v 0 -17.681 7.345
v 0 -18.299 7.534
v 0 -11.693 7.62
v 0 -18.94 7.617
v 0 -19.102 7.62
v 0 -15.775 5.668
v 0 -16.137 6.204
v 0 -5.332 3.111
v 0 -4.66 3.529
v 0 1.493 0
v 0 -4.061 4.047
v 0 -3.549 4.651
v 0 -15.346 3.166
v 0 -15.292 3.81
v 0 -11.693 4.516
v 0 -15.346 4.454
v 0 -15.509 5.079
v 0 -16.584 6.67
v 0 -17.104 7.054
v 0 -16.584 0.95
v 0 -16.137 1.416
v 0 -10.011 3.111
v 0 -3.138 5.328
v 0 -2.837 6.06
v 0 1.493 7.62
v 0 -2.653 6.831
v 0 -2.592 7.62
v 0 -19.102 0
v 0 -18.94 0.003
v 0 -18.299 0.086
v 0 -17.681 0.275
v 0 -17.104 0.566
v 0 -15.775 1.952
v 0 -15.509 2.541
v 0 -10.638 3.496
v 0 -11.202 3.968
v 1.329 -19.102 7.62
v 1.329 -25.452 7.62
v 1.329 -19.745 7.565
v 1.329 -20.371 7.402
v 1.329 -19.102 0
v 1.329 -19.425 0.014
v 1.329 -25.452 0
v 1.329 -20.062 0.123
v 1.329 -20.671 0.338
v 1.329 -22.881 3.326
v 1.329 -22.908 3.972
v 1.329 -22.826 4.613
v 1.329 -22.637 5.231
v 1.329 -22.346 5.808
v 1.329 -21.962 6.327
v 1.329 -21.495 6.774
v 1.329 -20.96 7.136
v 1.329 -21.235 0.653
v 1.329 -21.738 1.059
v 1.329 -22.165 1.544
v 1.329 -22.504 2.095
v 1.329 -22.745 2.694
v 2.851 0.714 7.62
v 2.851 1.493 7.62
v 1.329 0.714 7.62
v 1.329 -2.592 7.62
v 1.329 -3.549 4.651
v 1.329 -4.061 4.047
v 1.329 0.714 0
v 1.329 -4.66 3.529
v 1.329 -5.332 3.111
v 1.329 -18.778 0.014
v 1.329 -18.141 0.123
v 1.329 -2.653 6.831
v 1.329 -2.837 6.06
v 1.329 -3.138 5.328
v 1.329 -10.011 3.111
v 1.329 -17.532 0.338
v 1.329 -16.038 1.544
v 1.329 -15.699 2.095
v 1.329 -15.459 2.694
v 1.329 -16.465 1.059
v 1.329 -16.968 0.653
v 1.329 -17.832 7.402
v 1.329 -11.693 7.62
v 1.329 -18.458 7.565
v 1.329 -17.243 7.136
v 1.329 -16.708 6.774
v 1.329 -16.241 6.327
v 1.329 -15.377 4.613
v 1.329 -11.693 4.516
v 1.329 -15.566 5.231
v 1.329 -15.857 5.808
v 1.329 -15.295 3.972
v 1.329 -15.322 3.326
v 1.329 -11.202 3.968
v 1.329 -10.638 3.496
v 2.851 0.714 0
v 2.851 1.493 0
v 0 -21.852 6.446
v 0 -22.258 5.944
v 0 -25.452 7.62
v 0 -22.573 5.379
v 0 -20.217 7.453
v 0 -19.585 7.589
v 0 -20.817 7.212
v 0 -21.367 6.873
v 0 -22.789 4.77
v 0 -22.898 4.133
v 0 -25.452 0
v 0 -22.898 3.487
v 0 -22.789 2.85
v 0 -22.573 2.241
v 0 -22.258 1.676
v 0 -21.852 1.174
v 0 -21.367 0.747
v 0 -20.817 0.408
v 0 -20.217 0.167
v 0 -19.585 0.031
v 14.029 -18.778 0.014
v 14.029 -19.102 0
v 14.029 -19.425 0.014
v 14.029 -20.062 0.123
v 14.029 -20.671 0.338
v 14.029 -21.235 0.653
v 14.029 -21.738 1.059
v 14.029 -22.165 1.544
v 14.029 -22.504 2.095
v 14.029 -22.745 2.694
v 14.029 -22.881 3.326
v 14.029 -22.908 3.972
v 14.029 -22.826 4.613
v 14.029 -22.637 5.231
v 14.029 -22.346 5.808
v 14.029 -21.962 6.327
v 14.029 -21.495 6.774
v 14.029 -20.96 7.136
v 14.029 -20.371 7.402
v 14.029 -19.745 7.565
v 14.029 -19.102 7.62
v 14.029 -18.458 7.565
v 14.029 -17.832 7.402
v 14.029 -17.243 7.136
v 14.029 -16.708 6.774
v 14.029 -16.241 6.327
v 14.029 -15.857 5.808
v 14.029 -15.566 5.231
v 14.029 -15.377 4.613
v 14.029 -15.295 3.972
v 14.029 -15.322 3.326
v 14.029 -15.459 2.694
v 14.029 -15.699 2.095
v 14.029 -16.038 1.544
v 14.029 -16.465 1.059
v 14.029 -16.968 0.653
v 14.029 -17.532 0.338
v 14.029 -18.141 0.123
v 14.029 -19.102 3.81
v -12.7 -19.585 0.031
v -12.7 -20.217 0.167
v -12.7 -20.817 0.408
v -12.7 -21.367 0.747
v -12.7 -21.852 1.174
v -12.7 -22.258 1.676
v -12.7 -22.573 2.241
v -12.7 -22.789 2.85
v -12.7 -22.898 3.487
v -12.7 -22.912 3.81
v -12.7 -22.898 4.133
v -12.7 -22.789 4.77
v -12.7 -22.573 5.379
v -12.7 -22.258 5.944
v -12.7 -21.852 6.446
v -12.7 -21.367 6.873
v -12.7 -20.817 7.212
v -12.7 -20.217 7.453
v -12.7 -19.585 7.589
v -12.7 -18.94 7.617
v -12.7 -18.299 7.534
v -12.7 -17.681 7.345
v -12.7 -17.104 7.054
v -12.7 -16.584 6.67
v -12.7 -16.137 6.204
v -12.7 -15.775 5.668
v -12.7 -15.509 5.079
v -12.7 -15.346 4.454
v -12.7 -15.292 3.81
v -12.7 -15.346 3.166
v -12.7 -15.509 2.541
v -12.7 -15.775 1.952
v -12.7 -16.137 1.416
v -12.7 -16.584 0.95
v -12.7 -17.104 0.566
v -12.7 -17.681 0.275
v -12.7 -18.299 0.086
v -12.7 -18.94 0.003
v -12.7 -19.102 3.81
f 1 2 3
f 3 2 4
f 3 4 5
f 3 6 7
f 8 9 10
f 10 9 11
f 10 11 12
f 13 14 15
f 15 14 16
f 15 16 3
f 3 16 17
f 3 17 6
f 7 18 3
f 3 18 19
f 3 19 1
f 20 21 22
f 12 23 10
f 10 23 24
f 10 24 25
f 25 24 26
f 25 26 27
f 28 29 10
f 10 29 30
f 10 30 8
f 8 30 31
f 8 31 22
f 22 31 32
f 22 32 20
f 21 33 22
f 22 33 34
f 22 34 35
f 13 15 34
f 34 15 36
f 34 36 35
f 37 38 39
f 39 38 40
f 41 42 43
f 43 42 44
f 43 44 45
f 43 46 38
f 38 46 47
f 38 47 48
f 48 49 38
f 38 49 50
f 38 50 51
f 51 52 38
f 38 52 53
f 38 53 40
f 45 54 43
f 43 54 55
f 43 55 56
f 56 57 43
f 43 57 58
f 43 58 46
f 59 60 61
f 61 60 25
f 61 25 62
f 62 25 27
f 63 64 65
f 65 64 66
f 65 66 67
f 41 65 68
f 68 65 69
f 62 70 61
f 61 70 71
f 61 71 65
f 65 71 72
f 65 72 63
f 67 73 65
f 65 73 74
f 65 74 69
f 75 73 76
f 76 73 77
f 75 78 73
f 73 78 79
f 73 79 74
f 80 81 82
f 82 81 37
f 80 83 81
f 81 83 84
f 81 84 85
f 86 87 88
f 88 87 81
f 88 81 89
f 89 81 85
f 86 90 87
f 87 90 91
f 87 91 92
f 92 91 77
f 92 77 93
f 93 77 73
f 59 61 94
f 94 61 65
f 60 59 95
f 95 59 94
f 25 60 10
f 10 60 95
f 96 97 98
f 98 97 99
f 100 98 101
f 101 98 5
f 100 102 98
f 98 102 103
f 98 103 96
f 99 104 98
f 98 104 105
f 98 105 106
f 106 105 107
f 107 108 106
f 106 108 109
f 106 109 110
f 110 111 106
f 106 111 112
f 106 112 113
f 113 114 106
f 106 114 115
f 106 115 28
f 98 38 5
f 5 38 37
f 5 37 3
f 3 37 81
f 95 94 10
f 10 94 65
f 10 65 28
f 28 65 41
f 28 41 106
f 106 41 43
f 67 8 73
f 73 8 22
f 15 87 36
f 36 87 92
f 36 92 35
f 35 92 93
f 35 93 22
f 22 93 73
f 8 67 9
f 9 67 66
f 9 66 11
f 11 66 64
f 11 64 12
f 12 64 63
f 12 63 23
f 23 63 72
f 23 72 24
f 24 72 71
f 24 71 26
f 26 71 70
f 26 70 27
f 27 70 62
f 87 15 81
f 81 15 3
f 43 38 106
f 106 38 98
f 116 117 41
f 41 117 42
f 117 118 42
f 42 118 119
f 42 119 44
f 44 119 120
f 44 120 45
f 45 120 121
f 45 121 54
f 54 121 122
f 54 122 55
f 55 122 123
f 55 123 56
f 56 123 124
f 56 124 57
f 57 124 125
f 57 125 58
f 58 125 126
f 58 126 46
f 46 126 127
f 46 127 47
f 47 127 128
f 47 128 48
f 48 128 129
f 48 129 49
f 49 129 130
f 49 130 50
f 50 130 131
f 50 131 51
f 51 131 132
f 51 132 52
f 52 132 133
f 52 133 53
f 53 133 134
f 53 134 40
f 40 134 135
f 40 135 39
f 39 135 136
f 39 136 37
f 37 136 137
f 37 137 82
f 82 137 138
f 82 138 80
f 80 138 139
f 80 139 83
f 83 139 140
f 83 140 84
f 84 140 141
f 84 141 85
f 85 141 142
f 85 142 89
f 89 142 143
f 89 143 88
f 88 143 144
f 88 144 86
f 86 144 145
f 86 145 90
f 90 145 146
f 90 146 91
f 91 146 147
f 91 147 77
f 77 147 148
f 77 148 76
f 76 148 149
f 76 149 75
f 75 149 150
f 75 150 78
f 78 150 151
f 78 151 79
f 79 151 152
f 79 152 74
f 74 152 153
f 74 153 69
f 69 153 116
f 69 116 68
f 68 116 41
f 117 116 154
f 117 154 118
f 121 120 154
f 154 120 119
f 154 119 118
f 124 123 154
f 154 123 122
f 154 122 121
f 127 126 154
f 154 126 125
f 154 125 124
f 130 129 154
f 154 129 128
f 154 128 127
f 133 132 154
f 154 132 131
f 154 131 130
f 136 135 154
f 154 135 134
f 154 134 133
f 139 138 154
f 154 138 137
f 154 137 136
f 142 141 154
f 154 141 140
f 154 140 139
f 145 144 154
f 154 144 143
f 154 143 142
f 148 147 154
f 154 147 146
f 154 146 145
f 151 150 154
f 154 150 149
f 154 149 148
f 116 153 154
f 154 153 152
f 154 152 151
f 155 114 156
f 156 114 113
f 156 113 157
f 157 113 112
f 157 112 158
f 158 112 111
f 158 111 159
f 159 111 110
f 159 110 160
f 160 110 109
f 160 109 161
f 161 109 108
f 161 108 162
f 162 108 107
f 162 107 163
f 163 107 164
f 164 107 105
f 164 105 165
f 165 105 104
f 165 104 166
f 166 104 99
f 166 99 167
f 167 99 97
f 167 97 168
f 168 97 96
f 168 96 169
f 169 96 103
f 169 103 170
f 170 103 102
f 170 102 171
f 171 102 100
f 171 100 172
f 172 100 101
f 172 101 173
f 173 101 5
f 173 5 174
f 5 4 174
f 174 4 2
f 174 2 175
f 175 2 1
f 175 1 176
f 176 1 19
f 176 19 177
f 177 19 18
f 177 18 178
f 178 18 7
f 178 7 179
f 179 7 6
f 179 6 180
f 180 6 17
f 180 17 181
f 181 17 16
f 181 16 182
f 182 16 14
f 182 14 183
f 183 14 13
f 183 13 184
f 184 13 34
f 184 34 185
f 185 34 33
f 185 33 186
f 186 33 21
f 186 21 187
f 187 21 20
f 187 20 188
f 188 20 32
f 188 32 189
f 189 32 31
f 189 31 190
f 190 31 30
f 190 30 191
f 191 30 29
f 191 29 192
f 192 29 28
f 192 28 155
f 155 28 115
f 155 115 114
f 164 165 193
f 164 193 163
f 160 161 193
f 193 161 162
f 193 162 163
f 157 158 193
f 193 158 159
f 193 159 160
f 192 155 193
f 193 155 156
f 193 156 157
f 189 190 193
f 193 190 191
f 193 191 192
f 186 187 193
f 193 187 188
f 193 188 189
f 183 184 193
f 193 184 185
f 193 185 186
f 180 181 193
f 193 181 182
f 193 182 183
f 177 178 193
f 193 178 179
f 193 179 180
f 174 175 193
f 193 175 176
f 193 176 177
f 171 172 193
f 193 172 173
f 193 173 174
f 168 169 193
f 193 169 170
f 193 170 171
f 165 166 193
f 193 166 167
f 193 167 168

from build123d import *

# Parameters (mm, degrees)
BOSS_EXTRUDE1_DEPTH = 7.62
CUT_EXTRUDE2_DEPTH  = 6.35
SKETCH7_W           = 1.329001146
SKETCH7_H           = 7.62
BOSS_EXTRUDE2_DEPTH = 12.7
SKETCH8_R           = 3.81
BOSS_EXTRUDE3_DEPTH = 12.7
BOSS_EXTRUDE4_START = 12.7
SKETCH9_R           = 3.81
BOSS_EXTRUDE4_DEPTH = 12.7


with BuildPart() as part:
    # Sketch2 → Boss-Extrude1 (new body)
    with BuildSketch(Plane.XY):
        Polygon((1.329001146, -2.591505287), (1.329001146, 0.714117771), (2.850653855, 0.714117771), (2.850653855, 1.492637762), (1.329001146, 1.492637762), (0, 1.492637762), (0, 0.714117771), (0, -2.591505287), (0, -12.751505287), (1.329001146, -12.751505287), align=None)
    extrude(amount=BOSS_EXTRUDE1_DEPTH)

    # Sketch4 → Cut-Extrude2 (cut)
    with BuildSketch(Plane(origin=(1.329001146, 0, 0), x_dir=(0, 0, -1), z_dir=(1, 0, 0))):
        with BuildLine():
            Line((-3.110701149, -5.332141298), (-3.110701149, -10.010869275))
            ThreePointArc((-3.110701149, -10.010869275), (-3.721619208, -10.928655452), (-4.516161712, -11.693020907))
            Line((-4.516161712, -11.693020907), (-7.62, -11.693020907))
            Line((-7.62, -11.693020907), (-7.62, -2.591505287))
            ThreePointArc((-7.62, -2.591505287), (-4.981588457, -3.330401218), (-3.110701149, -5.332141298))
        make_face()
    extrude(amount=-CUT_EXTRUDE2_DEPTH, mode=Mode.SUBTRACT)

    # Sketch7 → Boss-Extrude2 (add)
    with BuildSketch(Plane.XZ.offset(12.751505287)):
        with Locations((0.664500573, 3.81)):
            Rectangle(SKETCH7_W, SKETCH7_H)
    extrude(amount=BOSS_EXTRUDE2_DEPTH)

    # Sketch8 → Boss-Extrude3 (add)
    with BuildSketch(Plane(origin=(1.329001146, 0, 0), x_dir=(0, 0, -1), z_dir=(1, 0, 0))):
        with Locations((-3.81, -19.101505287)):
            Circle(SKETCH8_R)
    extrude(amount=BOSS_EXTRUDE3_DEPTH)

    # Sketch9 → Boss-Extrude4 (add)
    with BuildSketch(Plane.ZY.offset(BOSS_EXTRUDE4_START)):
        with Locations(Location((3.81, -19.101505287, 0), (0, 0, 180))):
            Circle(SKETCH9_R)
    extrude(amount=-BOSS_EXTRUDE4_DEPTH)


solid = part.part
